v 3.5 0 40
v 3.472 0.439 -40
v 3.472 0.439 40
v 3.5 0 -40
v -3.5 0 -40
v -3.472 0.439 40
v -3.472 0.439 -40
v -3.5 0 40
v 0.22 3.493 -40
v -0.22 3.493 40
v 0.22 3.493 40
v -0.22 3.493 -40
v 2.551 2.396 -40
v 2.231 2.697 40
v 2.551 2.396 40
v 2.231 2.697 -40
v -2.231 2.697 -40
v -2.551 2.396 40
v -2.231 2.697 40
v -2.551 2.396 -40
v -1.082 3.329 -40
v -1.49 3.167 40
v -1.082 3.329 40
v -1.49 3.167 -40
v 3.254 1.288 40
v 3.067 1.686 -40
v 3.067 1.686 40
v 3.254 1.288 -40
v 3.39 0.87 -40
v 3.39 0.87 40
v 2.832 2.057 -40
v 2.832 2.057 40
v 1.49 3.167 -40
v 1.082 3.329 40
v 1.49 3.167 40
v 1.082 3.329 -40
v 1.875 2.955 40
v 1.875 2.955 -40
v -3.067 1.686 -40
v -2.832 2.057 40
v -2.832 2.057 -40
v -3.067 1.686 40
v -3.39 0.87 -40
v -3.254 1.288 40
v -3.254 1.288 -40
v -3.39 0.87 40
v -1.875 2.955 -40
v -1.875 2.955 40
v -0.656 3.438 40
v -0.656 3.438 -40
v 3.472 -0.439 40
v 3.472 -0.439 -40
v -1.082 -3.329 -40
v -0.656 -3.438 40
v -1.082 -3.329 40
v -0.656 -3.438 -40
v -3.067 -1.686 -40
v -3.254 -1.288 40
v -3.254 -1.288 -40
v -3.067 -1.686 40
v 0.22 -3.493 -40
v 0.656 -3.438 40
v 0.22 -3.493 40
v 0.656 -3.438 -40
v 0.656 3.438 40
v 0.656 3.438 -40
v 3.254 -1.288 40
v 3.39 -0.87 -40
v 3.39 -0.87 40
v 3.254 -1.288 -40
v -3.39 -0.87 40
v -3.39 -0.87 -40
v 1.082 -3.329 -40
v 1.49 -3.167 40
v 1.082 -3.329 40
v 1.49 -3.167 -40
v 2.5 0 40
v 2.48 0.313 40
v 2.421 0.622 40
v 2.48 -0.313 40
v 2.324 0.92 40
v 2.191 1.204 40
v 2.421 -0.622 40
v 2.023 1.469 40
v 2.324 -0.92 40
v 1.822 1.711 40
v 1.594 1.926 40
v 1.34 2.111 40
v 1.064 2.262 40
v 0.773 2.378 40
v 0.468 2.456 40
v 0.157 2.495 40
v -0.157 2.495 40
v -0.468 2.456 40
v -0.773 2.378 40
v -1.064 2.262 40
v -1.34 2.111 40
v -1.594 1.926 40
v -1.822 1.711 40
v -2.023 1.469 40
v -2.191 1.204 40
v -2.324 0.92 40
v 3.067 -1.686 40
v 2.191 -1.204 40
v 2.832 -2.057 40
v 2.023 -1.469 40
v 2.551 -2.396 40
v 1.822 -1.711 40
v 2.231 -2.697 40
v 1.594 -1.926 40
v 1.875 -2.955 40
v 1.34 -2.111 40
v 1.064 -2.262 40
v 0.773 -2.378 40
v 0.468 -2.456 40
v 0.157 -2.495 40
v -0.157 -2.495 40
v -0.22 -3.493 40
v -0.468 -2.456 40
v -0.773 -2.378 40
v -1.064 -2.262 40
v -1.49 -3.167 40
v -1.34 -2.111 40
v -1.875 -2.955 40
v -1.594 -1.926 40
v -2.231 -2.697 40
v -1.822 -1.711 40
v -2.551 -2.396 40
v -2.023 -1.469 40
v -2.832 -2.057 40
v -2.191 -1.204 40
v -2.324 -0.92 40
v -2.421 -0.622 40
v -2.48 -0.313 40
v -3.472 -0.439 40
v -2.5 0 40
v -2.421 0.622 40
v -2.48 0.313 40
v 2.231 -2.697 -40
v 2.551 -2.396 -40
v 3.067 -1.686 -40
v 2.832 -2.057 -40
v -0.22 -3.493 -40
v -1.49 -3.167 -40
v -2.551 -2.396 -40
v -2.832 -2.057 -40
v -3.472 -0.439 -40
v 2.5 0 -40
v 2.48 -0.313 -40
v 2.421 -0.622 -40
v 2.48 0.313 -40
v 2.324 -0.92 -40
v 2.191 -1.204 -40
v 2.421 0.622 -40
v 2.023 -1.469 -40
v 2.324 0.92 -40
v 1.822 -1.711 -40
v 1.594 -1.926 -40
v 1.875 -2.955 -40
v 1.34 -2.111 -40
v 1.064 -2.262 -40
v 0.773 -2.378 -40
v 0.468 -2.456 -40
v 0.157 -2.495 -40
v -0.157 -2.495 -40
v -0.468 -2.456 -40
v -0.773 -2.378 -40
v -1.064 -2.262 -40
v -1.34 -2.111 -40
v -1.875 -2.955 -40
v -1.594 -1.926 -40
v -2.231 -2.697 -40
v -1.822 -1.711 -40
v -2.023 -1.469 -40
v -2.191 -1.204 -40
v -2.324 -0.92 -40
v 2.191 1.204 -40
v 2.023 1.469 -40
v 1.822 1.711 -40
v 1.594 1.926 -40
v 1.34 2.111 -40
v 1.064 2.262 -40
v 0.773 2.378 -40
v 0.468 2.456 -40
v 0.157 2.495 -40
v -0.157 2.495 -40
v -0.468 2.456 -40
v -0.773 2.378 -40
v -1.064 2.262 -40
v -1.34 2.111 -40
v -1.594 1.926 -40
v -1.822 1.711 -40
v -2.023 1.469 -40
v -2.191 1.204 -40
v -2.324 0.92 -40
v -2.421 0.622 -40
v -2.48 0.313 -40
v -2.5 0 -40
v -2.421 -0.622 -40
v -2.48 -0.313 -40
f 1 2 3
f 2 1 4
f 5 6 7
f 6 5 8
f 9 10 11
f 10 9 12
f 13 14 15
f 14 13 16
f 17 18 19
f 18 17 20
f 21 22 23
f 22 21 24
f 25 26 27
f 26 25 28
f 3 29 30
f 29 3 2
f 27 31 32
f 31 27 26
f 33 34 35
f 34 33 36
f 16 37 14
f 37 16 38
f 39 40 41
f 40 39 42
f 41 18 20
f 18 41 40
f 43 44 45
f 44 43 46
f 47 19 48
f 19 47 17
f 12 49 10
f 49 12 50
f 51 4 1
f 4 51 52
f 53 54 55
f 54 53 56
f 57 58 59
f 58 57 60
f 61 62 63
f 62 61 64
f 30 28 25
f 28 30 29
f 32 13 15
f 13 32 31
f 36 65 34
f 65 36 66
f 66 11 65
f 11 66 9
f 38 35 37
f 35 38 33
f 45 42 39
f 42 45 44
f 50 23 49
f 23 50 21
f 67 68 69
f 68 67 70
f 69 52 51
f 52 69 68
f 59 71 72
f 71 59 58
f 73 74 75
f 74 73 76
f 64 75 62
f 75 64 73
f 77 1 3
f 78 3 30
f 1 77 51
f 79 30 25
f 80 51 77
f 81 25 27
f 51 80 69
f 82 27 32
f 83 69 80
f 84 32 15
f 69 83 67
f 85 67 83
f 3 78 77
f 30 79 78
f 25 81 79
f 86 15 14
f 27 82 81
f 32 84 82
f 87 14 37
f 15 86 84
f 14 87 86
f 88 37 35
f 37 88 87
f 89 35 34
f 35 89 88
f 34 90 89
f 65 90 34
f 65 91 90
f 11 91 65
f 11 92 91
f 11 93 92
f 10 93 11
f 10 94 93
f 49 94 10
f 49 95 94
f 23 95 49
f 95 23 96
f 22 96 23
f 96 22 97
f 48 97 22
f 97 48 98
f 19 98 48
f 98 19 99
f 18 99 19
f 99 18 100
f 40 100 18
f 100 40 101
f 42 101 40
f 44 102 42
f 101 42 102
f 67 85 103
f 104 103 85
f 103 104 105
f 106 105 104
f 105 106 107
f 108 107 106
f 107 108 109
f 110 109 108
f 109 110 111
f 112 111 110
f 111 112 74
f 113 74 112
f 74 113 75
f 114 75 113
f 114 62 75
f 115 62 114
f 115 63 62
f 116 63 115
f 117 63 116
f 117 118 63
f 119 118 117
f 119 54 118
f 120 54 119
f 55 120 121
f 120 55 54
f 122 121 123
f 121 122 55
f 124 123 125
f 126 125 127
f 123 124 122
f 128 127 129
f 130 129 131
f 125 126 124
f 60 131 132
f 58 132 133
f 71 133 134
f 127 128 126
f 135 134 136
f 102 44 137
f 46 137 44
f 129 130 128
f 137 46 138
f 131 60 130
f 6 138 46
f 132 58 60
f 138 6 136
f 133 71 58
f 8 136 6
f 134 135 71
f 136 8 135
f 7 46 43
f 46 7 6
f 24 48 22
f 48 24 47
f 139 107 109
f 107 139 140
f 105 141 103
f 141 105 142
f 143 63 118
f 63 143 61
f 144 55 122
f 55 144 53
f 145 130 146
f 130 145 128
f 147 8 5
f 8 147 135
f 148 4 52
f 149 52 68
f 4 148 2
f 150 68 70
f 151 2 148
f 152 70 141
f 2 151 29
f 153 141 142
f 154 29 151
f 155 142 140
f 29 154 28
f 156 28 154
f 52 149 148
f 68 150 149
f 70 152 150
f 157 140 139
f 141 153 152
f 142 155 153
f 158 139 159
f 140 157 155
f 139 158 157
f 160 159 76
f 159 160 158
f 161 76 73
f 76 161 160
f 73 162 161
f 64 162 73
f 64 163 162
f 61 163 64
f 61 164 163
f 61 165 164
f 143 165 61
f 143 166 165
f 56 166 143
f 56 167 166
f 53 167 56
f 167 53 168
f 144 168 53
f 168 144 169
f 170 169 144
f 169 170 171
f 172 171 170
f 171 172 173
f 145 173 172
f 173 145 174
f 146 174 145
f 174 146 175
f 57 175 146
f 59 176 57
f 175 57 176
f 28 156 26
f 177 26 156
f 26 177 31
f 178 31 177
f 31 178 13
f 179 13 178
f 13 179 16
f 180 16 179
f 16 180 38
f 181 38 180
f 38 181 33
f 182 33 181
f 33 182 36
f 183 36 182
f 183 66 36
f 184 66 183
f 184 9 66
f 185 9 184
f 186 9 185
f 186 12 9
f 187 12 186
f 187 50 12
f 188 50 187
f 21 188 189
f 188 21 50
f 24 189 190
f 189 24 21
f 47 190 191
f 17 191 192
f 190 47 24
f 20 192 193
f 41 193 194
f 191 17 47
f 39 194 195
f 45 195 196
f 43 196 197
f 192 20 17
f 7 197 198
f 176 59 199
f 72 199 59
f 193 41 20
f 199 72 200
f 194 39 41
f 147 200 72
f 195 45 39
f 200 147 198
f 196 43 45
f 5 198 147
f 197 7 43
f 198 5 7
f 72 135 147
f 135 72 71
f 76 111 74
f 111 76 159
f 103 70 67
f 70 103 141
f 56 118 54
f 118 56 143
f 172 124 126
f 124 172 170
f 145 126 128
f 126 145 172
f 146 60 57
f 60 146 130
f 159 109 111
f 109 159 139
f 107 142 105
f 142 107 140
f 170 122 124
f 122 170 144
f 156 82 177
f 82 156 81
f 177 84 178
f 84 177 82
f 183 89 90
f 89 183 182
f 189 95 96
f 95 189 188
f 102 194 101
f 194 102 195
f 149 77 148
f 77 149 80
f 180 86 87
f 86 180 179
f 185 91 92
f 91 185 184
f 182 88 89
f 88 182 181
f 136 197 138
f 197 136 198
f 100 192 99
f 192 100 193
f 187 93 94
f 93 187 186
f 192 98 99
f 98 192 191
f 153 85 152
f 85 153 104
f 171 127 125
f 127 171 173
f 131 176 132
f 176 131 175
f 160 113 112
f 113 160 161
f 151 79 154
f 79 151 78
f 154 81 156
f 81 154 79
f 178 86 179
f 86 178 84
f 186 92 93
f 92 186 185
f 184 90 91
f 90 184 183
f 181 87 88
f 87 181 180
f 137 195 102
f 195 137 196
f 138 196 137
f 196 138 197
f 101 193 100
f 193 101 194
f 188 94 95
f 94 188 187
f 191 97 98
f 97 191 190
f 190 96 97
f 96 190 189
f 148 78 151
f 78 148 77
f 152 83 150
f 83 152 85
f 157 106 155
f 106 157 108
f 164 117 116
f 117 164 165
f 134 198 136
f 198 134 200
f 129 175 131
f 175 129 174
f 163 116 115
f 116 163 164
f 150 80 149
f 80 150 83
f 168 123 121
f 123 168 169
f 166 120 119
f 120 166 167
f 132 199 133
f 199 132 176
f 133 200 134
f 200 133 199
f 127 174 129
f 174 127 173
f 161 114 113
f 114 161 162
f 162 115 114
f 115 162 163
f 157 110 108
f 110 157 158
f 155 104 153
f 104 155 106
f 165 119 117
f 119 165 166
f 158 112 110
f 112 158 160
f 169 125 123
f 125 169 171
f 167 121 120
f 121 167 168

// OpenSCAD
$fn = 50;


difference() {
	union() {
		translate(v = [0, 0, -40.0000000000]) {
			cylinder(h = 80, r = 3.5000000000);
		}
	}
	union() {
		translate(v = [0, 0, -100.0000000000]) {
			cylinder(h = 200, r = 2.5000000000);
		}
	}
}
